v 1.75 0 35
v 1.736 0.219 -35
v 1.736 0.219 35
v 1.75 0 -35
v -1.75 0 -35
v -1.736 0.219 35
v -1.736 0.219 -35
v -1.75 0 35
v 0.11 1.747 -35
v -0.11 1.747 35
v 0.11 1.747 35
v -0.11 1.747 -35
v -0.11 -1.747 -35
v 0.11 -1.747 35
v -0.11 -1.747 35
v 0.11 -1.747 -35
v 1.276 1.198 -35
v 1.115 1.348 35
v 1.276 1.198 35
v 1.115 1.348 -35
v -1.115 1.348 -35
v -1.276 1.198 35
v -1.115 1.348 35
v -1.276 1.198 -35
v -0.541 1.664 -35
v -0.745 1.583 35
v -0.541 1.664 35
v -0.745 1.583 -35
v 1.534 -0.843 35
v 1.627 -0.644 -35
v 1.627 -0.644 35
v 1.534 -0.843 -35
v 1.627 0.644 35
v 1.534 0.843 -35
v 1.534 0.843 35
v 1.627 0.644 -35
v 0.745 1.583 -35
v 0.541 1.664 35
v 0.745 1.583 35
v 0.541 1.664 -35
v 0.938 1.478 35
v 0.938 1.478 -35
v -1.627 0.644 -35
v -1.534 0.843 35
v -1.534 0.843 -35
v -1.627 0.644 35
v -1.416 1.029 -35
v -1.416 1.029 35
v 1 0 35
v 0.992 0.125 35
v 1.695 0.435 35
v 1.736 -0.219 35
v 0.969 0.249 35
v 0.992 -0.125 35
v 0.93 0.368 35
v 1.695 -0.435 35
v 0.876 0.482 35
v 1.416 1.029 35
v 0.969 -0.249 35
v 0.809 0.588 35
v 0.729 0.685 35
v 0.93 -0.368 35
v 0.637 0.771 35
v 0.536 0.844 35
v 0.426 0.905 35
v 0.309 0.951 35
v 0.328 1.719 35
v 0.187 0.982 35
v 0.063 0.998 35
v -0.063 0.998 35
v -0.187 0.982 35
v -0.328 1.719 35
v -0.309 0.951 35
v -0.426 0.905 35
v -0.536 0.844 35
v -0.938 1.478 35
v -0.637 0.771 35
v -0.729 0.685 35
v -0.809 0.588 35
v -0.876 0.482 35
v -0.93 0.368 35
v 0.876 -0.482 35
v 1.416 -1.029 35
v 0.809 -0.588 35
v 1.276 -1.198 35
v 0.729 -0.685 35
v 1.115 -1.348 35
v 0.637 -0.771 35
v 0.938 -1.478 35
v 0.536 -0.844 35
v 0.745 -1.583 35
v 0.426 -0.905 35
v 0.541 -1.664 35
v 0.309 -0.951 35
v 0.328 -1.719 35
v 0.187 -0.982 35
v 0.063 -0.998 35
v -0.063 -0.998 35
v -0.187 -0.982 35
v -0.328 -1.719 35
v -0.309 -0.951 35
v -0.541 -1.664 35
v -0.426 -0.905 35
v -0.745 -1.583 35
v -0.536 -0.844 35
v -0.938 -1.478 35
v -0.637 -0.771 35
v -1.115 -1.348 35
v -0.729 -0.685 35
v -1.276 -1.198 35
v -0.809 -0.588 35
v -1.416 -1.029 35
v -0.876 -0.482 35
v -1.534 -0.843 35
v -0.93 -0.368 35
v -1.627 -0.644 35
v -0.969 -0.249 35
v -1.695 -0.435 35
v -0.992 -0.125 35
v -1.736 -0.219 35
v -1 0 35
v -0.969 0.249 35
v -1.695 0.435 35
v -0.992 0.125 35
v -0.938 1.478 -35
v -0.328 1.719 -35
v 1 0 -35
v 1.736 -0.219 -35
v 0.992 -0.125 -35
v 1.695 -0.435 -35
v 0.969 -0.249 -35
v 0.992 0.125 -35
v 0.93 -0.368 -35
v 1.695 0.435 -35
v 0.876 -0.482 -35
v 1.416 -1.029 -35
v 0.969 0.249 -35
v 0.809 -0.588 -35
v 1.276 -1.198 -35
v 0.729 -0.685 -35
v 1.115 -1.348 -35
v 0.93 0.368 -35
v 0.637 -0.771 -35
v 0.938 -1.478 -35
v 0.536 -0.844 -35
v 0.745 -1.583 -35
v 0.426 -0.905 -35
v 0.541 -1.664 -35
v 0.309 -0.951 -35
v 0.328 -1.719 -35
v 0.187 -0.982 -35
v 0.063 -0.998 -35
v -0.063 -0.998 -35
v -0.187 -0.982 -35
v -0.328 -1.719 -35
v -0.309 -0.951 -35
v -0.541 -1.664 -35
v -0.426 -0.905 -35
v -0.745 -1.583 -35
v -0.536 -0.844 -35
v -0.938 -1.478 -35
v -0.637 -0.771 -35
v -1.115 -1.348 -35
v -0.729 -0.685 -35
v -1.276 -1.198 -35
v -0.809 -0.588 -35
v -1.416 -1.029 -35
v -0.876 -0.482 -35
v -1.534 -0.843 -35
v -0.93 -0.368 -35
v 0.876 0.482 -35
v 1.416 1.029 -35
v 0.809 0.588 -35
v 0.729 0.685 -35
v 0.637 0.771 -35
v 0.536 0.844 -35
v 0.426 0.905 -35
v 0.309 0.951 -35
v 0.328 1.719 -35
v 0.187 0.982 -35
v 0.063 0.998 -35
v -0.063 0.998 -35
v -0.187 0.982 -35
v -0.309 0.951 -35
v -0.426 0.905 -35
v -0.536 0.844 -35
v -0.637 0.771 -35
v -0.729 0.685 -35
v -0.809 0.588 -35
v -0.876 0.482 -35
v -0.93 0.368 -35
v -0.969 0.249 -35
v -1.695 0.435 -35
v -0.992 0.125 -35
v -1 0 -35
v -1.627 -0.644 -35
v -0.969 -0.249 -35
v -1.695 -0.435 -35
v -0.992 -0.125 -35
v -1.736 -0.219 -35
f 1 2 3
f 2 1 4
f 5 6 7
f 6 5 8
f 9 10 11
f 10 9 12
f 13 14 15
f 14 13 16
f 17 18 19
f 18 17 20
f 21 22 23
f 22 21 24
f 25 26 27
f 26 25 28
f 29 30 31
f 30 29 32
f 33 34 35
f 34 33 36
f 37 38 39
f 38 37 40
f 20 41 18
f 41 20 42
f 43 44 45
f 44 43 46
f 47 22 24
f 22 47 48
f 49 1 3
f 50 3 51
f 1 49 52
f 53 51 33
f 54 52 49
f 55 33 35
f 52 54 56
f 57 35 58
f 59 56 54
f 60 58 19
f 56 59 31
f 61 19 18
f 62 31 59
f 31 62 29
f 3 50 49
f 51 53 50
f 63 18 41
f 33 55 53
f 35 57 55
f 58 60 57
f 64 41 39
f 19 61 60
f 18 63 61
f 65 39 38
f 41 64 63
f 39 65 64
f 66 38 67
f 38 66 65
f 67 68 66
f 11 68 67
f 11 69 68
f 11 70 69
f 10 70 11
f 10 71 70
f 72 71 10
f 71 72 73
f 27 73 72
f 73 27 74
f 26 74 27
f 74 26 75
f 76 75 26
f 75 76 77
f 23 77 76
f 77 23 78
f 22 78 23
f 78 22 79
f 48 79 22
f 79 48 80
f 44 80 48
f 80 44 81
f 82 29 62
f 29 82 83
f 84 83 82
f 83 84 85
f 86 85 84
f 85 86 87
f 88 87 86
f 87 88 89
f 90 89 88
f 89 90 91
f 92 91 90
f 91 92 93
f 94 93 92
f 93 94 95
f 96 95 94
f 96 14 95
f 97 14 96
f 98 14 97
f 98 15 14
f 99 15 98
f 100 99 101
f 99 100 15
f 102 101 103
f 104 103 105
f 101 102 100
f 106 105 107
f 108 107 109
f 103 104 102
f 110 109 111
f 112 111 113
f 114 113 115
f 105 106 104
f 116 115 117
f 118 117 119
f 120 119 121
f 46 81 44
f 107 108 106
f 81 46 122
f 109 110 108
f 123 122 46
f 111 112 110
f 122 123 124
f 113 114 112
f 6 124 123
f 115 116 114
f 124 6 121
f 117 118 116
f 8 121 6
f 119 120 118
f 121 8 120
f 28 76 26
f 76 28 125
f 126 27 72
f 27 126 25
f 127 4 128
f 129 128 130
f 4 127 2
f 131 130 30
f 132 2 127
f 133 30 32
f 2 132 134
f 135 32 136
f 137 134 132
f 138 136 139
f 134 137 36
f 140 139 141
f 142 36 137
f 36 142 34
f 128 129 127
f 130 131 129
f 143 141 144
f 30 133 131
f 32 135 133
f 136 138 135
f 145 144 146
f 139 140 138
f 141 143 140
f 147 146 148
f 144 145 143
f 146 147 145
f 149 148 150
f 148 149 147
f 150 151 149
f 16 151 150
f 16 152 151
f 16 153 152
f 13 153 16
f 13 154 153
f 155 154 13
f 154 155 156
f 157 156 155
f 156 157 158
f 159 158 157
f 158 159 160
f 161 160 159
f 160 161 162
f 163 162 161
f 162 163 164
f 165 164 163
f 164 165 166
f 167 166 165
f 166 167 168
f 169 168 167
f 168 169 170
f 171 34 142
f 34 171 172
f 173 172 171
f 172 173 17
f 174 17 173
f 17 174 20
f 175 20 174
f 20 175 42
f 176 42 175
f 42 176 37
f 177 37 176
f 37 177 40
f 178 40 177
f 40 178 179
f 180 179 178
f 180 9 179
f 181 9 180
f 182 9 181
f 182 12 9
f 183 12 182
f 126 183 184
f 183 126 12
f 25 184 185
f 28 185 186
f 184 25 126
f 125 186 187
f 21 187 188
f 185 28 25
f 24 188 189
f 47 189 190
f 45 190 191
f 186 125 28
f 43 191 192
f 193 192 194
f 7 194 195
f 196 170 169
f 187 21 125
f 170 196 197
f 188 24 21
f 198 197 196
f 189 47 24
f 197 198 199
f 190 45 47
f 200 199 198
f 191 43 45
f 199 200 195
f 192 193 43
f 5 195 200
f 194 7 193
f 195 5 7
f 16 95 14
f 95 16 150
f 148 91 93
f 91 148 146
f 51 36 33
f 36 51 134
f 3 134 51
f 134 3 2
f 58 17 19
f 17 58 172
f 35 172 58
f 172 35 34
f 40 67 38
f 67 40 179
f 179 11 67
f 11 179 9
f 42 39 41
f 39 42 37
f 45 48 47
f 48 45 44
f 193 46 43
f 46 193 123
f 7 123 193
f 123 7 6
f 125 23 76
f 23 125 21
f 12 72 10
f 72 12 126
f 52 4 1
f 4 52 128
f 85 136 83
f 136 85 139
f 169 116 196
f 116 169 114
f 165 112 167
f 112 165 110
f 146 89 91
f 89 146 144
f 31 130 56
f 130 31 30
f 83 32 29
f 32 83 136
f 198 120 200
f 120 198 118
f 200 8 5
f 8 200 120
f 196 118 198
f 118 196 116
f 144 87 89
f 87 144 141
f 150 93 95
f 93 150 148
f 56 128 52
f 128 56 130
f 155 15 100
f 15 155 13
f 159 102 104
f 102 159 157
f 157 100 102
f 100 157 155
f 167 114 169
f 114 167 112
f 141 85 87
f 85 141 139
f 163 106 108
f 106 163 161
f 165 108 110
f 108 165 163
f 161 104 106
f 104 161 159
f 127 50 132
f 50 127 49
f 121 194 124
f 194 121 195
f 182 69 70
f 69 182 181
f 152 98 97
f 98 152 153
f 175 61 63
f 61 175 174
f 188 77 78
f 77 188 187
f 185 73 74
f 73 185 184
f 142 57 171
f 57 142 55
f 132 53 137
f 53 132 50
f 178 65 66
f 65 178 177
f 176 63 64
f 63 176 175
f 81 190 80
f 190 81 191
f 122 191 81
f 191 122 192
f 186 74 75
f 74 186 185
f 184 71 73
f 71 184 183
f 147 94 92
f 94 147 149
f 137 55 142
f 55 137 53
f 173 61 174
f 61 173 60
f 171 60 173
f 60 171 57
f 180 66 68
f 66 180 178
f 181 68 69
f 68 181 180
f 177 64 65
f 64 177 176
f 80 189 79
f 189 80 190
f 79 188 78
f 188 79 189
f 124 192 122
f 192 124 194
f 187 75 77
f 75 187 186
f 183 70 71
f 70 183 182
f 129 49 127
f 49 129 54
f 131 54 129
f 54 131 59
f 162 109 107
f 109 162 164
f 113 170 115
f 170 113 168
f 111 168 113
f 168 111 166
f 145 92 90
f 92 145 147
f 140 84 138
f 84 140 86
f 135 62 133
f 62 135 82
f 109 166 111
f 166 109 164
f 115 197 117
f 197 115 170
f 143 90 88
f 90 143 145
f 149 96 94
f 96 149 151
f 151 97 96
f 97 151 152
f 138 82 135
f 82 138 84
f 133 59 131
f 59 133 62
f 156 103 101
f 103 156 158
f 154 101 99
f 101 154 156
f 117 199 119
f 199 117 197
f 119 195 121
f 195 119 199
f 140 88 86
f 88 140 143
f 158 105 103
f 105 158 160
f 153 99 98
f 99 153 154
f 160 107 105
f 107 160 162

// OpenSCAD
$fn = 50;


difference() {
	union() {
		translate(v = [0, 0, -35.0000000000]) {
			cylinder(h = 70, r = 1.7500000000);
		}
	}
	union() {
		translate(v = [0, 0, -100.0000000000]) {
			cylinder(h = 200, r = 1.0000000000);
		}
	}
}
